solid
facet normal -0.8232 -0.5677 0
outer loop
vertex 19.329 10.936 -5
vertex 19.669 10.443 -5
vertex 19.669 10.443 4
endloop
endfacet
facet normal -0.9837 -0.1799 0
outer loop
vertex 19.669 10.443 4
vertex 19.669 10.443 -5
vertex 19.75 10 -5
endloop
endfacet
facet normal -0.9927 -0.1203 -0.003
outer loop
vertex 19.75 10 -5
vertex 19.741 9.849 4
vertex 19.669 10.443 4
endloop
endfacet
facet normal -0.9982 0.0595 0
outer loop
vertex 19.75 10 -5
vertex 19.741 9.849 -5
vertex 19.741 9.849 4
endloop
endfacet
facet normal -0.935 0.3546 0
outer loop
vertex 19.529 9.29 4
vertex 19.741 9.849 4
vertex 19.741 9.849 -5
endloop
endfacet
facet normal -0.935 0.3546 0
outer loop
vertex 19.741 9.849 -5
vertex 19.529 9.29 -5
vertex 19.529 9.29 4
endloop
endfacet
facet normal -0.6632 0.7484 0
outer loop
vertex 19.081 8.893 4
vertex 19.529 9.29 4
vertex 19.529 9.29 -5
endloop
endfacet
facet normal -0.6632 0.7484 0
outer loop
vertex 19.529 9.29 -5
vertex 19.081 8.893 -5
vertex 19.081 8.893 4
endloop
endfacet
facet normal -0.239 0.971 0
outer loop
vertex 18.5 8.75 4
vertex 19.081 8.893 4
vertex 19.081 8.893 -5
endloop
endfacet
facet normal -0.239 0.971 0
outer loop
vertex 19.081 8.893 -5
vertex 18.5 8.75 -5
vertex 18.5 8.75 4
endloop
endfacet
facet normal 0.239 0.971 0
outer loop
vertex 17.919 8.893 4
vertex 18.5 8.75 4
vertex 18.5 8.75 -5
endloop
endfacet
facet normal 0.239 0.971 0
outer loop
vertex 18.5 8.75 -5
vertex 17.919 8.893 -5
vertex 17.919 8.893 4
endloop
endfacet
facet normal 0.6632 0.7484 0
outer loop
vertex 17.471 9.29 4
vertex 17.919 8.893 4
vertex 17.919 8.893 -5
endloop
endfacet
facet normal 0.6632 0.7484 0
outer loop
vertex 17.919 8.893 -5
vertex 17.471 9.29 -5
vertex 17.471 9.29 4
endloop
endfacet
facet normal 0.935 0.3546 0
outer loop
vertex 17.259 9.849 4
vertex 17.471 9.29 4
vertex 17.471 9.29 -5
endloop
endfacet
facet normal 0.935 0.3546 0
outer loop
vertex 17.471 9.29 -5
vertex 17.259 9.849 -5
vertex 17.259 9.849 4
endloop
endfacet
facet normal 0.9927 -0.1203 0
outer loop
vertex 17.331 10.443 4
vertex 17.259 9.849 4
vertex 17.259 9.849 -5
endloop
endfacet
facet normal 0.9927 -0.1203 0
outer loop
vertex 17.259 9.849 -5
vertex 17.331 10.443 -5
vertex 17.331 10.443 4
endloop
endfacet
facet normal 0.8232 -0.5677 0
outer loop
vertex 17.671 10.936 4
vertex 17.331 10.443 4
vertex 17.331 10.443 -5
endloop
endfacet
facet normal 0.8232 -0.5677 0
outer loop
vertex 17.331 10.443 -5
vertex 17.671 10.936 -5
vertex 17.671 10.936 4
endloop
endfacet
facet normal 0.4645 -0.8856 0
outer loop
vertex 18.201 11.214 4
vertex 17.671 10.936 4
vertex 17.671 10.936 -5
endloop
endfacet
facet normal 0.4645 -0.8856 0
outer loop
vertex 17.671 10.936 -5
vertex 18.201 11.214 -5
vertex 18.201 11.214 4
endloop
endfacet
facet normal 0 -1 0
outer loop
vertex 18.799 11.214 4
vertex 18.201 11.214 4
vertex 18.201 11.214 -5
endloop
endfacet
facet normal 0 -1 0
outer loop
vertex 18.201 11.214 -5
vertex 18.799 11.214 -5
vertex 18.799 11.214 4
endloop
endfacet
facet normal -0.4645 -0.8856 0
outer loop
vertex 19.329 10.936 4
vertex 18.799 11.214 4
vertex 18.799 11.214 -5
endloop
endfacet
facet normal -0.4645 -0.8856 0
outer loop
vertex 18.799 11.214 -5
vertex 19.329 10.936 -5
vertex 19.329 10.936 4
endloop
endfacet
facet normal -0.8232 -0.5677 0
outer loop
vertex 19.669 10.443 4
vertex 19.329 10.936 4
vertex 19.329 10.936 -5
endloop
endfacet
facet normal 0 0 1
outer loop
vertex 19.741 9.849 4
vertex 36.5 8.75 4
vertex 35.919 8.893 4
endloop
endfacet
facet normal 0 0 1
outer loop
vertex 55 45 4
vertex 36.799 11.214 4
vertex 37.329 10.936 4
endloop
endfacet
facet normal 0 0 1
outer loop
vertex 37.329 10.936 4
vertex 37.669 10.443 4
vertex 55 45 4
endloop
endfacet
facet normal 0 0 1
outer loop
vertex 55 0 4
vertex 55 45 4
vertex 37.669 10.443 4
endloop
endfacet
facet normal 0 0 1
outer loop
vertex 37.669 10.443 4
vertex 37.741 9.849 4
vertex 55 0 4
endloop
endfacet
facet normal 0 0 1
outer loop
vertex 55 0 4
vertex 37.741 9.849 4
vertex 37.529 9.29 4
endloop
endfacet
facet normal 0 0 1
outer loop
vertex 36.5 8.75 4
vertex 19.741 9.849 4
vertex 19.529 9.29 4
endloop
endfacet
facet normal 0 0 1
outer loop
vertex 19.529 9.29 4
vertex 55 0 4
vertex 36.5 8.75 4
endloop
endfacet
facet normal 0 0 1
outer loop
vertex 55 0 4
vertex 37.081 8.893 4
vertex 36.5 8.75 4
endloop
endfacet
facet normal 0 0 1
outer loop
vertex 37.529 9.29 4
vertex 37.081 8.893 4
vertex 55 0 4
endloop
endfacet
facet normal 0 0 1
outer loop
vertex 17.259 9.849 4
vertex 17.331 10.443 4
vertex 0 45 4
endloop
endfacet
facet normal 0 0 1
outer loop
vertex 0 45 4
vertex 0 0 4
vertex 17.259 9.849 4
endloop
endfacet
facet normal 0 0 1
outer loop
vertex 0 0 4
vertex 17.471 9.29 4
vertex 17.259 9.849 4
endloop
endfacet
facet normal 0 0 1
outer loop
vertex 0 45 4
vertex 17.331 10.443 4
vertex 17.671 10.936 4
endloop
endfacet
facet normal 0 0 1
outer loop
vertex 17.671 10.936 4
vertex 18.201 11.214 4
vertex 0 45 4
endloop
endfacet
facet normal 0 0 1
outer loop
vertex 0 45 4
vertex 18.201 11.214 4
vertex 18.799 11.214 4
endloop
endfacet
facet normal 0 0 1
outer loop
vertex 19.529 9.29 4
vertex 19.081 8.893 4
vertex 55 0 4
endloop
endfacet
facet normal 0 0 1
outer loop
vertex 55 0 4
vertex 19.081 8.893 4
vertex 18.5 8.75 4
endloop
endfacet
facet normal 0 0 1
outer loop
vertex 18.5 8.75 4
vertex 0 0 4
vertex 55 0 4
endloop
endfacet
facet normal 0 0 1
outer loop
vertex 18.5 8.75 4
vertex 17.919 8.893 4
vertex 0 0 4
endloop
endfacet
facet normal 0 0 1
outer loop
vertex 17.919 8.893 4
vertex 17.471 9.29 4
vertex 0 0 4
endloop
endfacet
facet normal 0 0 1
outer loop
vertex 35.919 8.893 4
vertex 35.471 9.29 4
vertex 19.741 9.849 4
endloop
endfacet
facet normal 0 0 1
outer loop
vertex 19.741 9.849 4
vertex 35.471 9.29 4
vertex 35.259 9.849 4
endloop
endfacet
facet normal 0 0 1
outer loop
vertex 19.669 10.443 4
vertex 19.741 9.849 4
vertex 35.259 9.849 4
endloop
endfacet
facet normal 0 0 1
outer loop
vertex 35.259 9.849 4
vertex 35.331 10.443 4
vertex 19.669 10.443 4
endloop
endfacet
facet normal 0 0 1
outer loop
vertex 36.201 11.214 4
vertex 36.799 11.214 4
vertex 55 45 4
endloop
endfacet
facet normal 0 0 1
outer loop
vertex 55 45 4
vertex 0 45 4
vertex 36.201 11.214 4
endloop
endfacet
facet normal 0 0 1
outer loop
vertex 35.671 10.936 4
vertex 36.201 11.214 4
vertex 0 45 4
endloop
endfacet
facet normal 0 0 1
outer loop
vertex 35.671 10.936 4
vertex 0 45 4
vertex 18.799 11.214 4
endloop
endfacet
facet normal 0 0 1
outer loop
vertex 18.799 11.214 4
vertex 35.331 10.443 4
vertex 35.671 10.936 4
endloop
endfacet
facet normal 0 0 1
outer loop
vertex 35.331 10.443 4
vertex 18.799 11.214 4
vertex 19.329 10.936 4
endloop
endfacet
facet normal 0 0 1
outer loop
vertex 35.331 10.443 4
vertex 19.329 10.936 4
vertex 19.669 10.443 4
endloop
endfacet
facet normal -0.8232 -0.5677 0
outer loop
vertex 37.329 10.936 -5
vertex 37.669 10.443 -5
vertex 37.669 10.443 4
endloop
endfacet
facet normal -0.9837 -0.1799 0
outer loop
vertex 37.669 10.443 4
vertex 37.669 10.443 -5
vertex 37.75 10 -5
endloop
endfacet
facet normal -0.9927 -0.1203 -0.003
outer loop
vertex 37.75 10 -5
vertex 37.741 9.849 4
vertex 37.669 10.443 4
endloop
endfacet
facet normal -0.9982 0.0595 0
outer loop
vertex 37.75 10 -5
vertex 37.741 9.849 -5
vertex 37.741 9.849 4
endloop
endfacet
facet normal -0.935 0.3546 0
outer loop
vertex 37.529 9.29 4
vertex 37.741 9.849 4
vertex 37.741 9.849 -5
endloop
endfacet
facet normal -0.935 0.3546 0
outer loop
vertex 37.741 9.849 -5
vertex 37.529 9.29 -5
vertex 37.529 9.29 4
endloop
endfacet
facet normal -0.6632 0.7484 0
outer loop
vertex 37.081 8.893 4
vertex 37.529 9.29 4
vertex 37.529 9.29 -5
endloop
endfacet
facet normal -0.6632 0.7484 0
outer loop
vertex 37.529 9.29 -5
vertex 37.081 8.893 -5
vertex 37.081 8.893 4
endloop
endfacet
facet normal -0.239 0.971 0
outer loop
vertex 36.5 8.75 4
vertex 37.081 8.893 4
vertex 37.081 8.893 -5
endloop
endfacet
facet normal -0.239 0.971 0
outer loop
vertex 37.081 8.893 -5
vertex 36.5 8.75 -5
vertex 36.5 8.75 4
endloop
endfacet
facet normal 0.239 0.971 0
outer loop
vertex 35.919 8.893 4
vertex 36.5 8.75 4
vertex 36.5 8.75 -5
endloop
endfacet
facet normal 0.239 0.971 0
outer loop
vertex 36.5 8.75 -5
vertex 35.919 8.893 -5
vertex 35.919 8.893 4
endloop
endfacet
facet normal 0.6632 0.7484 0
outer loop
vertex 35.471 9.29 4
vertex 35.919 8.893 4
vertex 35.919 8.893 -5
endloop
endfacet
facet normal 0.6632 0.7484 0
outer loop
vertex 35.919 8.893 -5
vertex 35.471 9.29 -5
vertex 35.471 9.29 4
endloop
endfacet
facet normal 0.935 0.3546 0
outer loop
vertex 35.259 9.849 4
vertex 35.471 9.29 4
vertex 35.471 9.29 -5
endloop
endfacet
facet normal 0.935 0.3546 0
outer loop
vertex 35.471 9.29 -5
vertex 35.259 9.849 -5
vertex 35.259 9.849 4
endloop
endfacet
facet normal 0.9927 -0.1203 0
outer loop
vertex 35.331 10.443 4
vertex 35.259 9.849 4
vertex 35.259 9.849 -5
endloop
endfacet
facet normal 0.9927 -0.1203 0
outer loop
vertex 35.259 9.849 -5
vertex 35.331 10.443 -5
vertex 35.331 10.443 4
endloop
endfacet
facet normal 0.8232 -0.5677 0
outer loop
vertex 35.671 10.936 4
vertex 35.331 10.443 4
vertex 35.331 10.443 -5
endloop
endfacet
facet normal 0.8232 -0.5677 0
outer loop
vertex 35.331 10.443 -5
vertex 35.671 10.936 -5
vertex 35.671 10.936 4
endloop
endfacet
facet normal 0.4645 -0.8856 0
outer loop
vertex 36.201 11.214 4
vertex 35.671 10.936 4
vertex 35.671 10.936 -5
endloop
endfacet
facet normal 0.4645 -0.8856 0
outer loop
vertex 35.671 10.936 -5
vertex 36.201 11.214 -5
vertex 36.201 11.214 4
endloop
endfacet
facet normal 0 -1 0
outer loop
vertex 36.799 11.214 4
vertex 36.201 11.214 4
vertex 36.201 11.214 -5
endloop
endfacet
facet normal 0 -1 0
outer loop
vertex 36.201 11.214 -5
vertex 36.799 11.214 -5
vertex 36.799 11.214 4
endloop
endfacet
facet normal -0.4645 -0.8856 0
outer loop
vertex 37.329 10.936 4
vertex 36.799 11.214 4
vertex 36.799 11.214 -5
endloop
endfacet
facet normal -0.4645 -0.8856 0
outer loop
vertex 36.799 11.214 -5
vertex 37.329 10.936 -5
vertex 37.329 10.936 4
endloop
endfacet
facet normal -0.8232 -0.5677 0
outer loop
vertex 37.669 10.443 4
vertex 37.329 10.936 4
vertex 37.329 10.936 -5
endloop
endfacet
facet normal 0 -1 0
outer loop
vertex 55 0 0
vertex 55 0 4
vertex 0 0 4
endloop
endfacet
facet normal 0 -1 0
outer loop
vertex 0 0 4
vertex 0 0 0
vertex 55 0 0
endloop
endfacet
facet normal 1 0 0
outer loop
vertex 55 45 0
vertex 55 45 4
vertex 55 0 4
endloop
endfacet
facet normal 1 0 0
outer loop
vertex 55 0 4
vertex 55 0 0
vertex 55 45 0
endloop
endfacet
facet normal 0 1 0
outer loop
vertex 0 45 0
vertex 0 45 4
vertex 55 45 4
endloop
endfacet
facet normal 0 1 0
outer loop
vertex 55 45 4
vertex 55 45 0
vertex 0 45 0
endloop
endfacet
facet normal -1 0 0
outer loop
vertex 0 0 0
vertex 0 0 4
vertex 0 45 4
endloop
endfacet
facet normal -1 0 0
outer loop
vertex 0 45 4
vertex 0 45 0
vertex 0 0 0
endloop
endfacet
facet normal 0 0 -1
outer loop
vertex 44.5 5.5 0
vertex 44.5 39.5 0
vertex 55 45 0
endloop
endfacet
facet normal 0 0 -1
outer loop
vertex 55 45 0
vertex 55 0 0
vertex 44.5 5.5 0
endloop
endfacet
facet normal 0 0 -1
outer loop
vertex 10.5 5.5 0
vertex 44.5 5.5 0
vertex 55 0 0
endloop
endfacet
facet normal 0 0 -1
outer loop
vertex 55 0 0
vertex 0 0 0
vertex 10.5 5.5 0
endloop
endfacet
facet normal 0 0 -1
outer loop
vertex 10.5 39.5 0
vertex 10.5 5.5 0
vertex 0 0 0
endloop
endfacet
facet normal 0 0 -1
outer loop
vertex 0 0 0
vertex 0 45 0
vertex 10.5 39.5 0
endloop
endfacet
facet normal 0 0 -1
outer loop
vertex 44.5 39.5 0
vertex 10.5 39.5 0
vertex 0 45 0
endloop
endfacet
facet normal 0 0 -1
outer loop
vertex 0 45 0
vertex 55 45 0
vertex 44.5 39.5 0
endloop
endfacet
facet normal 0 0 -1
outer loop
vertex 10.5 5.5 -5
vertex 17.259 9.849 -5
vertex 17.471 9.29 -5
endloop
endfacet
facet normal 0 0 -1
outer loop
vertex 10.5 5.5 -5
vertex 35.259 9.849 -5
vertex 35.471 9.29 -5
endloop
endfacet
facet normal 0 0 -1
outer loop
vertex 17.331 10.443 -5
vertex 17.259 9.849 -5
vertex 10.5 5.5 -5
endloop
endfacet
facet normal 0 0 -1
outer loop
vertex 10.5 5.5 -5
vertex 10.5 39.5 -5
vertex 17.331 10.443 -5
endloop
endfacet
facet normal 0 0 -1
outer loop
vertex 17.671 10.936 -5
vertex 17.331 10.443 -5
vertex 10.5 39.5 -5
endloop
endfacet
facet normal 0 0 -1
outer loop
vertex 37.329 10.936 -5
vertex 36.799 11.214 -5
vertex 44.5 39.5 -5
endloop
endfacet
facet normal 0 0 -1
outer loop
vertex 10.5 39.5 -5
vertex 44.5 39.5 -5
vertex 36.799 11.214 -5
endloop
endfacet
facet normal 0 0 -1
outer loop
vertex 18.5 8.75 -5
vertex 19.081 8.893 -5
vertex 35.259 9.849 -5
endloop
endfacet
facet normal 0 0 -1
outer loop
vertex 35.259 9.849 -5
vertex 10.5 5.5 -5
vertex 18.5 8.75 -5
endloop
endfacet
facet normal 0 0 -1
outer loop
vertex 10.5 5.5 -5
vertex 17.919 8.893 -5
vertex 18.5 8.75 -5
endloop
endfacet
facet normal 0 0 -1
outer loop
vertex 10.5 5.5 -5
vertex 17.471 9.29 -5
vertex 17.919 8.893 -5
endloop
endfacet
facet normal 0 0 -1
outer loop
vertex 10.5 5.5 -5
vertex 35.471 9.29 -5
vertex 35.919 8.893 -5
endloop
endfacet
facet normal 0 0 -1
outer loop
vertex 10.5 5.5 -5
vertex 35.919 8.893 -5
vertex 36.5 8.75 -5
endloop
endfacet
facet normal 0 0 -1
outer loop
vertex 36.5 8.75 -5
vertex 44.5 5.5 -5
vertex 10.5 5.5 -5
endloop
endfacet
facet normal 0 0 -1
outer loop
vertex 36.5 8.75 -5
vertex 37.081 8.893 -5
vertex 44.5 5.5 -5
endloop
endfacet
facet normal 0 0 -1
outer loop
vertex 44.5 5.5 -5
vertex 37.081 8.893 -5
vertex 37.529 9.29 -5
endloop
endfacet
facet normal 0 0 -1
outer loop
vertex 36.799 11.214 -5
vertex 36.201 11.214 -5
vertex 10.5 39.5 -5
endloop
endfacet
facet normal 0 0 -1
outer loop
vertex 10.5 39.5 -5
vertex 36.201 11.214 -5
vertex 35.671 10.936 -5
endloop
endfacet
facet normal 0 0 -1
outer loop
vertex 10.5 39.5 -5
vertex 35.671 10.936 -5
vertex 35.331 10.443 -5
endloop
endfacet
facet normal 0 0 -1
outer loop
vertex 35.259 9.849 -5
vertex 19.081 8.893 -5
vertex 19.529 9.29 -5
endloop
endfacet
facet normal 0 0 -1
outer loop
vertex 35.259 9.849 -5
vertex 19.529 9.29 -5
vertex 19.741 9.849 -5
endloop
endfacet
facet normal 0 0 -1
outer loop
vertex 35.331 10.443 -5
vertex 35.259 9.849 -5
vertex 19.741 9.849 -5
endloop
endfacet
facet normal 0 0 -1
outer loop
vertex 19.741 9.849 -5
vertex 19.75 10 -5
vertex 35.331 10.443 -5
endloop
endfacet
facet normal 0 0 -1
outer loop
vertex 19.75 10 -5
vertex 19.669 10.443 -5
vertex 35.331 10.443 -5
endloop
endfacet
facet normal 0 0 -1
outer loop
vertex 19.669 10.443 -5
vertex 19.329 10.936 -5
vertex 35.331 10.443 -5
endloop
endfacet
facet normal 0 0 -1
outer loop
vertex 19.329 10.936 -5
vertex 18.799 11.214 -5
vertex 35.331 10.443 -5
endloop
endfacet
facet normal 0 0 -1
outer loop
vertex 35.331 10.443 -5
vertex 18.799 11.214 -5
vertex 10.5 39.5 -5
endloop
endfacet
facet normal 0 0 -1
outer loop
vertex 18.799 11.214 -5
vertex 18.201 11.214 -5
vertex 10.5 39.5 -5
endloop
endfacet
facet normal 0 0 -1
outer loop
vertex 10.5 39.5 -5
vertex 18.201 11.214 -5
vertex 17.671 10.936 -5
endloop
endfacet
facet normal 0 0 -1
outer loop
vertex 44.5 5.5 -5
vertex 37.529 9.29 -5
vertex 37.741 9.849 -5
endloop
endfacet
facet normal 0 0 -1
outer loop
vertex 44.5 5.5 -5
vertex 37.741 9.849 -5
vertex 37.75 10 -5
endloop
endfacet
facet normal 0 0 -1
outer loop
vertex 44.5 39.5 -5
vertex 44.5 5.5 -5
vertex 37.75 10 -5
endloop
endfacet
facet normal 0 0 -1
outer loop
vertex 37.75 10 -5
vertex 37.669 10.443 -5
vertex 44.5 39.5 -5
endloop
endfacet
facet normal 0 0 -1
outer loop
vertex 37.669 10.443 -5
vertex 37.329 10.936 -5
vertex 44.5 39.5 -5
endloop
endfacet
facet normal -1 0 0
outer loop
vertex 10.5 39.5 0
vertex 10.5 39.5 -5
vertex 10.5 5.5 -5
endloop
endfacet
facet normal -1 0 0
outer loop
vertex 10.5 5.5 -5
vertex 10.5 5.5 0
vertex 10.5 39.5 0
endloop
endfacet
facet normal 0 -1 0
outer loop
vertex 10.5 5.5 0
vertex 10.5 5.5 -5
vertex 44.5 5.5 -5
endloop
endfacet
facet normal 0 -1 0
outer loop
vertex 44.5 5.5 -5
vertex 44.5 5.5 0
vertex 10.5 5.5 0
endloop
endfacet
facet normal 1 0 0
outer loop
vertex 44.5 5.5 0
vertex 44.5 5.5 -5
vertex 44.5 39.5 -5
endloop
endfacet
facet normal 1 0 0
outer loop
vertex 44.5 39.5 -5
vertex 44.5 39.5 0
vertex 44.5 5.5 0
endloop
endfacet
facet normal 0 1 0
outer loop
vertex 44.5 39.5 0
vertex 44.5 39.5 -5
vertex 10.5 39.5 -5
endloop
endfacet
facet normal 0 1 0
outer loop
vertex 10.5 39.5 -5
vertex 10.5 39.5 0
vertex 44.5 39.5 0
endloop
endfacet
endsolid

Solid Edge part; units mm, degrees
sketch "Sketch1" plane through (0, 0, 0) normal (0, 0, 1) x (1, 0, 0)
  line L0 (55, 0) -> (55, 45)
  line L1 (55, 45) -> (0, 45)
  line L2 (0, 45) -> (0, 0)
  line L3 (0, 0) -> (55, 0)
extrude "Protrusion1" add sketch "Sketch1" along normal blind 4
sketch "Sketch2" plane through (22.5, 22.5, 0) normal (0, 0, -1) x (1, 0, 0)
  line L0 (-12, 17) -> (22, 17)
  line L1 (22, 17) -> (22, -17)
  line L2 (22, -17) -> (-12, -17)
  line L3 (-12, -17) -> (-12, 17)
extrude "ExtrudedProtrusion_2" add sketch "Sketch2" along normal blind 5
hole "Hole_1" at (18.5, 10, 4) direction (0, 0, -1) diameter 2.5 depth 10
hole "Hole1" at (36.5, 10, 4) direction (0, 0, -1) diameter 2.5 depth 10
